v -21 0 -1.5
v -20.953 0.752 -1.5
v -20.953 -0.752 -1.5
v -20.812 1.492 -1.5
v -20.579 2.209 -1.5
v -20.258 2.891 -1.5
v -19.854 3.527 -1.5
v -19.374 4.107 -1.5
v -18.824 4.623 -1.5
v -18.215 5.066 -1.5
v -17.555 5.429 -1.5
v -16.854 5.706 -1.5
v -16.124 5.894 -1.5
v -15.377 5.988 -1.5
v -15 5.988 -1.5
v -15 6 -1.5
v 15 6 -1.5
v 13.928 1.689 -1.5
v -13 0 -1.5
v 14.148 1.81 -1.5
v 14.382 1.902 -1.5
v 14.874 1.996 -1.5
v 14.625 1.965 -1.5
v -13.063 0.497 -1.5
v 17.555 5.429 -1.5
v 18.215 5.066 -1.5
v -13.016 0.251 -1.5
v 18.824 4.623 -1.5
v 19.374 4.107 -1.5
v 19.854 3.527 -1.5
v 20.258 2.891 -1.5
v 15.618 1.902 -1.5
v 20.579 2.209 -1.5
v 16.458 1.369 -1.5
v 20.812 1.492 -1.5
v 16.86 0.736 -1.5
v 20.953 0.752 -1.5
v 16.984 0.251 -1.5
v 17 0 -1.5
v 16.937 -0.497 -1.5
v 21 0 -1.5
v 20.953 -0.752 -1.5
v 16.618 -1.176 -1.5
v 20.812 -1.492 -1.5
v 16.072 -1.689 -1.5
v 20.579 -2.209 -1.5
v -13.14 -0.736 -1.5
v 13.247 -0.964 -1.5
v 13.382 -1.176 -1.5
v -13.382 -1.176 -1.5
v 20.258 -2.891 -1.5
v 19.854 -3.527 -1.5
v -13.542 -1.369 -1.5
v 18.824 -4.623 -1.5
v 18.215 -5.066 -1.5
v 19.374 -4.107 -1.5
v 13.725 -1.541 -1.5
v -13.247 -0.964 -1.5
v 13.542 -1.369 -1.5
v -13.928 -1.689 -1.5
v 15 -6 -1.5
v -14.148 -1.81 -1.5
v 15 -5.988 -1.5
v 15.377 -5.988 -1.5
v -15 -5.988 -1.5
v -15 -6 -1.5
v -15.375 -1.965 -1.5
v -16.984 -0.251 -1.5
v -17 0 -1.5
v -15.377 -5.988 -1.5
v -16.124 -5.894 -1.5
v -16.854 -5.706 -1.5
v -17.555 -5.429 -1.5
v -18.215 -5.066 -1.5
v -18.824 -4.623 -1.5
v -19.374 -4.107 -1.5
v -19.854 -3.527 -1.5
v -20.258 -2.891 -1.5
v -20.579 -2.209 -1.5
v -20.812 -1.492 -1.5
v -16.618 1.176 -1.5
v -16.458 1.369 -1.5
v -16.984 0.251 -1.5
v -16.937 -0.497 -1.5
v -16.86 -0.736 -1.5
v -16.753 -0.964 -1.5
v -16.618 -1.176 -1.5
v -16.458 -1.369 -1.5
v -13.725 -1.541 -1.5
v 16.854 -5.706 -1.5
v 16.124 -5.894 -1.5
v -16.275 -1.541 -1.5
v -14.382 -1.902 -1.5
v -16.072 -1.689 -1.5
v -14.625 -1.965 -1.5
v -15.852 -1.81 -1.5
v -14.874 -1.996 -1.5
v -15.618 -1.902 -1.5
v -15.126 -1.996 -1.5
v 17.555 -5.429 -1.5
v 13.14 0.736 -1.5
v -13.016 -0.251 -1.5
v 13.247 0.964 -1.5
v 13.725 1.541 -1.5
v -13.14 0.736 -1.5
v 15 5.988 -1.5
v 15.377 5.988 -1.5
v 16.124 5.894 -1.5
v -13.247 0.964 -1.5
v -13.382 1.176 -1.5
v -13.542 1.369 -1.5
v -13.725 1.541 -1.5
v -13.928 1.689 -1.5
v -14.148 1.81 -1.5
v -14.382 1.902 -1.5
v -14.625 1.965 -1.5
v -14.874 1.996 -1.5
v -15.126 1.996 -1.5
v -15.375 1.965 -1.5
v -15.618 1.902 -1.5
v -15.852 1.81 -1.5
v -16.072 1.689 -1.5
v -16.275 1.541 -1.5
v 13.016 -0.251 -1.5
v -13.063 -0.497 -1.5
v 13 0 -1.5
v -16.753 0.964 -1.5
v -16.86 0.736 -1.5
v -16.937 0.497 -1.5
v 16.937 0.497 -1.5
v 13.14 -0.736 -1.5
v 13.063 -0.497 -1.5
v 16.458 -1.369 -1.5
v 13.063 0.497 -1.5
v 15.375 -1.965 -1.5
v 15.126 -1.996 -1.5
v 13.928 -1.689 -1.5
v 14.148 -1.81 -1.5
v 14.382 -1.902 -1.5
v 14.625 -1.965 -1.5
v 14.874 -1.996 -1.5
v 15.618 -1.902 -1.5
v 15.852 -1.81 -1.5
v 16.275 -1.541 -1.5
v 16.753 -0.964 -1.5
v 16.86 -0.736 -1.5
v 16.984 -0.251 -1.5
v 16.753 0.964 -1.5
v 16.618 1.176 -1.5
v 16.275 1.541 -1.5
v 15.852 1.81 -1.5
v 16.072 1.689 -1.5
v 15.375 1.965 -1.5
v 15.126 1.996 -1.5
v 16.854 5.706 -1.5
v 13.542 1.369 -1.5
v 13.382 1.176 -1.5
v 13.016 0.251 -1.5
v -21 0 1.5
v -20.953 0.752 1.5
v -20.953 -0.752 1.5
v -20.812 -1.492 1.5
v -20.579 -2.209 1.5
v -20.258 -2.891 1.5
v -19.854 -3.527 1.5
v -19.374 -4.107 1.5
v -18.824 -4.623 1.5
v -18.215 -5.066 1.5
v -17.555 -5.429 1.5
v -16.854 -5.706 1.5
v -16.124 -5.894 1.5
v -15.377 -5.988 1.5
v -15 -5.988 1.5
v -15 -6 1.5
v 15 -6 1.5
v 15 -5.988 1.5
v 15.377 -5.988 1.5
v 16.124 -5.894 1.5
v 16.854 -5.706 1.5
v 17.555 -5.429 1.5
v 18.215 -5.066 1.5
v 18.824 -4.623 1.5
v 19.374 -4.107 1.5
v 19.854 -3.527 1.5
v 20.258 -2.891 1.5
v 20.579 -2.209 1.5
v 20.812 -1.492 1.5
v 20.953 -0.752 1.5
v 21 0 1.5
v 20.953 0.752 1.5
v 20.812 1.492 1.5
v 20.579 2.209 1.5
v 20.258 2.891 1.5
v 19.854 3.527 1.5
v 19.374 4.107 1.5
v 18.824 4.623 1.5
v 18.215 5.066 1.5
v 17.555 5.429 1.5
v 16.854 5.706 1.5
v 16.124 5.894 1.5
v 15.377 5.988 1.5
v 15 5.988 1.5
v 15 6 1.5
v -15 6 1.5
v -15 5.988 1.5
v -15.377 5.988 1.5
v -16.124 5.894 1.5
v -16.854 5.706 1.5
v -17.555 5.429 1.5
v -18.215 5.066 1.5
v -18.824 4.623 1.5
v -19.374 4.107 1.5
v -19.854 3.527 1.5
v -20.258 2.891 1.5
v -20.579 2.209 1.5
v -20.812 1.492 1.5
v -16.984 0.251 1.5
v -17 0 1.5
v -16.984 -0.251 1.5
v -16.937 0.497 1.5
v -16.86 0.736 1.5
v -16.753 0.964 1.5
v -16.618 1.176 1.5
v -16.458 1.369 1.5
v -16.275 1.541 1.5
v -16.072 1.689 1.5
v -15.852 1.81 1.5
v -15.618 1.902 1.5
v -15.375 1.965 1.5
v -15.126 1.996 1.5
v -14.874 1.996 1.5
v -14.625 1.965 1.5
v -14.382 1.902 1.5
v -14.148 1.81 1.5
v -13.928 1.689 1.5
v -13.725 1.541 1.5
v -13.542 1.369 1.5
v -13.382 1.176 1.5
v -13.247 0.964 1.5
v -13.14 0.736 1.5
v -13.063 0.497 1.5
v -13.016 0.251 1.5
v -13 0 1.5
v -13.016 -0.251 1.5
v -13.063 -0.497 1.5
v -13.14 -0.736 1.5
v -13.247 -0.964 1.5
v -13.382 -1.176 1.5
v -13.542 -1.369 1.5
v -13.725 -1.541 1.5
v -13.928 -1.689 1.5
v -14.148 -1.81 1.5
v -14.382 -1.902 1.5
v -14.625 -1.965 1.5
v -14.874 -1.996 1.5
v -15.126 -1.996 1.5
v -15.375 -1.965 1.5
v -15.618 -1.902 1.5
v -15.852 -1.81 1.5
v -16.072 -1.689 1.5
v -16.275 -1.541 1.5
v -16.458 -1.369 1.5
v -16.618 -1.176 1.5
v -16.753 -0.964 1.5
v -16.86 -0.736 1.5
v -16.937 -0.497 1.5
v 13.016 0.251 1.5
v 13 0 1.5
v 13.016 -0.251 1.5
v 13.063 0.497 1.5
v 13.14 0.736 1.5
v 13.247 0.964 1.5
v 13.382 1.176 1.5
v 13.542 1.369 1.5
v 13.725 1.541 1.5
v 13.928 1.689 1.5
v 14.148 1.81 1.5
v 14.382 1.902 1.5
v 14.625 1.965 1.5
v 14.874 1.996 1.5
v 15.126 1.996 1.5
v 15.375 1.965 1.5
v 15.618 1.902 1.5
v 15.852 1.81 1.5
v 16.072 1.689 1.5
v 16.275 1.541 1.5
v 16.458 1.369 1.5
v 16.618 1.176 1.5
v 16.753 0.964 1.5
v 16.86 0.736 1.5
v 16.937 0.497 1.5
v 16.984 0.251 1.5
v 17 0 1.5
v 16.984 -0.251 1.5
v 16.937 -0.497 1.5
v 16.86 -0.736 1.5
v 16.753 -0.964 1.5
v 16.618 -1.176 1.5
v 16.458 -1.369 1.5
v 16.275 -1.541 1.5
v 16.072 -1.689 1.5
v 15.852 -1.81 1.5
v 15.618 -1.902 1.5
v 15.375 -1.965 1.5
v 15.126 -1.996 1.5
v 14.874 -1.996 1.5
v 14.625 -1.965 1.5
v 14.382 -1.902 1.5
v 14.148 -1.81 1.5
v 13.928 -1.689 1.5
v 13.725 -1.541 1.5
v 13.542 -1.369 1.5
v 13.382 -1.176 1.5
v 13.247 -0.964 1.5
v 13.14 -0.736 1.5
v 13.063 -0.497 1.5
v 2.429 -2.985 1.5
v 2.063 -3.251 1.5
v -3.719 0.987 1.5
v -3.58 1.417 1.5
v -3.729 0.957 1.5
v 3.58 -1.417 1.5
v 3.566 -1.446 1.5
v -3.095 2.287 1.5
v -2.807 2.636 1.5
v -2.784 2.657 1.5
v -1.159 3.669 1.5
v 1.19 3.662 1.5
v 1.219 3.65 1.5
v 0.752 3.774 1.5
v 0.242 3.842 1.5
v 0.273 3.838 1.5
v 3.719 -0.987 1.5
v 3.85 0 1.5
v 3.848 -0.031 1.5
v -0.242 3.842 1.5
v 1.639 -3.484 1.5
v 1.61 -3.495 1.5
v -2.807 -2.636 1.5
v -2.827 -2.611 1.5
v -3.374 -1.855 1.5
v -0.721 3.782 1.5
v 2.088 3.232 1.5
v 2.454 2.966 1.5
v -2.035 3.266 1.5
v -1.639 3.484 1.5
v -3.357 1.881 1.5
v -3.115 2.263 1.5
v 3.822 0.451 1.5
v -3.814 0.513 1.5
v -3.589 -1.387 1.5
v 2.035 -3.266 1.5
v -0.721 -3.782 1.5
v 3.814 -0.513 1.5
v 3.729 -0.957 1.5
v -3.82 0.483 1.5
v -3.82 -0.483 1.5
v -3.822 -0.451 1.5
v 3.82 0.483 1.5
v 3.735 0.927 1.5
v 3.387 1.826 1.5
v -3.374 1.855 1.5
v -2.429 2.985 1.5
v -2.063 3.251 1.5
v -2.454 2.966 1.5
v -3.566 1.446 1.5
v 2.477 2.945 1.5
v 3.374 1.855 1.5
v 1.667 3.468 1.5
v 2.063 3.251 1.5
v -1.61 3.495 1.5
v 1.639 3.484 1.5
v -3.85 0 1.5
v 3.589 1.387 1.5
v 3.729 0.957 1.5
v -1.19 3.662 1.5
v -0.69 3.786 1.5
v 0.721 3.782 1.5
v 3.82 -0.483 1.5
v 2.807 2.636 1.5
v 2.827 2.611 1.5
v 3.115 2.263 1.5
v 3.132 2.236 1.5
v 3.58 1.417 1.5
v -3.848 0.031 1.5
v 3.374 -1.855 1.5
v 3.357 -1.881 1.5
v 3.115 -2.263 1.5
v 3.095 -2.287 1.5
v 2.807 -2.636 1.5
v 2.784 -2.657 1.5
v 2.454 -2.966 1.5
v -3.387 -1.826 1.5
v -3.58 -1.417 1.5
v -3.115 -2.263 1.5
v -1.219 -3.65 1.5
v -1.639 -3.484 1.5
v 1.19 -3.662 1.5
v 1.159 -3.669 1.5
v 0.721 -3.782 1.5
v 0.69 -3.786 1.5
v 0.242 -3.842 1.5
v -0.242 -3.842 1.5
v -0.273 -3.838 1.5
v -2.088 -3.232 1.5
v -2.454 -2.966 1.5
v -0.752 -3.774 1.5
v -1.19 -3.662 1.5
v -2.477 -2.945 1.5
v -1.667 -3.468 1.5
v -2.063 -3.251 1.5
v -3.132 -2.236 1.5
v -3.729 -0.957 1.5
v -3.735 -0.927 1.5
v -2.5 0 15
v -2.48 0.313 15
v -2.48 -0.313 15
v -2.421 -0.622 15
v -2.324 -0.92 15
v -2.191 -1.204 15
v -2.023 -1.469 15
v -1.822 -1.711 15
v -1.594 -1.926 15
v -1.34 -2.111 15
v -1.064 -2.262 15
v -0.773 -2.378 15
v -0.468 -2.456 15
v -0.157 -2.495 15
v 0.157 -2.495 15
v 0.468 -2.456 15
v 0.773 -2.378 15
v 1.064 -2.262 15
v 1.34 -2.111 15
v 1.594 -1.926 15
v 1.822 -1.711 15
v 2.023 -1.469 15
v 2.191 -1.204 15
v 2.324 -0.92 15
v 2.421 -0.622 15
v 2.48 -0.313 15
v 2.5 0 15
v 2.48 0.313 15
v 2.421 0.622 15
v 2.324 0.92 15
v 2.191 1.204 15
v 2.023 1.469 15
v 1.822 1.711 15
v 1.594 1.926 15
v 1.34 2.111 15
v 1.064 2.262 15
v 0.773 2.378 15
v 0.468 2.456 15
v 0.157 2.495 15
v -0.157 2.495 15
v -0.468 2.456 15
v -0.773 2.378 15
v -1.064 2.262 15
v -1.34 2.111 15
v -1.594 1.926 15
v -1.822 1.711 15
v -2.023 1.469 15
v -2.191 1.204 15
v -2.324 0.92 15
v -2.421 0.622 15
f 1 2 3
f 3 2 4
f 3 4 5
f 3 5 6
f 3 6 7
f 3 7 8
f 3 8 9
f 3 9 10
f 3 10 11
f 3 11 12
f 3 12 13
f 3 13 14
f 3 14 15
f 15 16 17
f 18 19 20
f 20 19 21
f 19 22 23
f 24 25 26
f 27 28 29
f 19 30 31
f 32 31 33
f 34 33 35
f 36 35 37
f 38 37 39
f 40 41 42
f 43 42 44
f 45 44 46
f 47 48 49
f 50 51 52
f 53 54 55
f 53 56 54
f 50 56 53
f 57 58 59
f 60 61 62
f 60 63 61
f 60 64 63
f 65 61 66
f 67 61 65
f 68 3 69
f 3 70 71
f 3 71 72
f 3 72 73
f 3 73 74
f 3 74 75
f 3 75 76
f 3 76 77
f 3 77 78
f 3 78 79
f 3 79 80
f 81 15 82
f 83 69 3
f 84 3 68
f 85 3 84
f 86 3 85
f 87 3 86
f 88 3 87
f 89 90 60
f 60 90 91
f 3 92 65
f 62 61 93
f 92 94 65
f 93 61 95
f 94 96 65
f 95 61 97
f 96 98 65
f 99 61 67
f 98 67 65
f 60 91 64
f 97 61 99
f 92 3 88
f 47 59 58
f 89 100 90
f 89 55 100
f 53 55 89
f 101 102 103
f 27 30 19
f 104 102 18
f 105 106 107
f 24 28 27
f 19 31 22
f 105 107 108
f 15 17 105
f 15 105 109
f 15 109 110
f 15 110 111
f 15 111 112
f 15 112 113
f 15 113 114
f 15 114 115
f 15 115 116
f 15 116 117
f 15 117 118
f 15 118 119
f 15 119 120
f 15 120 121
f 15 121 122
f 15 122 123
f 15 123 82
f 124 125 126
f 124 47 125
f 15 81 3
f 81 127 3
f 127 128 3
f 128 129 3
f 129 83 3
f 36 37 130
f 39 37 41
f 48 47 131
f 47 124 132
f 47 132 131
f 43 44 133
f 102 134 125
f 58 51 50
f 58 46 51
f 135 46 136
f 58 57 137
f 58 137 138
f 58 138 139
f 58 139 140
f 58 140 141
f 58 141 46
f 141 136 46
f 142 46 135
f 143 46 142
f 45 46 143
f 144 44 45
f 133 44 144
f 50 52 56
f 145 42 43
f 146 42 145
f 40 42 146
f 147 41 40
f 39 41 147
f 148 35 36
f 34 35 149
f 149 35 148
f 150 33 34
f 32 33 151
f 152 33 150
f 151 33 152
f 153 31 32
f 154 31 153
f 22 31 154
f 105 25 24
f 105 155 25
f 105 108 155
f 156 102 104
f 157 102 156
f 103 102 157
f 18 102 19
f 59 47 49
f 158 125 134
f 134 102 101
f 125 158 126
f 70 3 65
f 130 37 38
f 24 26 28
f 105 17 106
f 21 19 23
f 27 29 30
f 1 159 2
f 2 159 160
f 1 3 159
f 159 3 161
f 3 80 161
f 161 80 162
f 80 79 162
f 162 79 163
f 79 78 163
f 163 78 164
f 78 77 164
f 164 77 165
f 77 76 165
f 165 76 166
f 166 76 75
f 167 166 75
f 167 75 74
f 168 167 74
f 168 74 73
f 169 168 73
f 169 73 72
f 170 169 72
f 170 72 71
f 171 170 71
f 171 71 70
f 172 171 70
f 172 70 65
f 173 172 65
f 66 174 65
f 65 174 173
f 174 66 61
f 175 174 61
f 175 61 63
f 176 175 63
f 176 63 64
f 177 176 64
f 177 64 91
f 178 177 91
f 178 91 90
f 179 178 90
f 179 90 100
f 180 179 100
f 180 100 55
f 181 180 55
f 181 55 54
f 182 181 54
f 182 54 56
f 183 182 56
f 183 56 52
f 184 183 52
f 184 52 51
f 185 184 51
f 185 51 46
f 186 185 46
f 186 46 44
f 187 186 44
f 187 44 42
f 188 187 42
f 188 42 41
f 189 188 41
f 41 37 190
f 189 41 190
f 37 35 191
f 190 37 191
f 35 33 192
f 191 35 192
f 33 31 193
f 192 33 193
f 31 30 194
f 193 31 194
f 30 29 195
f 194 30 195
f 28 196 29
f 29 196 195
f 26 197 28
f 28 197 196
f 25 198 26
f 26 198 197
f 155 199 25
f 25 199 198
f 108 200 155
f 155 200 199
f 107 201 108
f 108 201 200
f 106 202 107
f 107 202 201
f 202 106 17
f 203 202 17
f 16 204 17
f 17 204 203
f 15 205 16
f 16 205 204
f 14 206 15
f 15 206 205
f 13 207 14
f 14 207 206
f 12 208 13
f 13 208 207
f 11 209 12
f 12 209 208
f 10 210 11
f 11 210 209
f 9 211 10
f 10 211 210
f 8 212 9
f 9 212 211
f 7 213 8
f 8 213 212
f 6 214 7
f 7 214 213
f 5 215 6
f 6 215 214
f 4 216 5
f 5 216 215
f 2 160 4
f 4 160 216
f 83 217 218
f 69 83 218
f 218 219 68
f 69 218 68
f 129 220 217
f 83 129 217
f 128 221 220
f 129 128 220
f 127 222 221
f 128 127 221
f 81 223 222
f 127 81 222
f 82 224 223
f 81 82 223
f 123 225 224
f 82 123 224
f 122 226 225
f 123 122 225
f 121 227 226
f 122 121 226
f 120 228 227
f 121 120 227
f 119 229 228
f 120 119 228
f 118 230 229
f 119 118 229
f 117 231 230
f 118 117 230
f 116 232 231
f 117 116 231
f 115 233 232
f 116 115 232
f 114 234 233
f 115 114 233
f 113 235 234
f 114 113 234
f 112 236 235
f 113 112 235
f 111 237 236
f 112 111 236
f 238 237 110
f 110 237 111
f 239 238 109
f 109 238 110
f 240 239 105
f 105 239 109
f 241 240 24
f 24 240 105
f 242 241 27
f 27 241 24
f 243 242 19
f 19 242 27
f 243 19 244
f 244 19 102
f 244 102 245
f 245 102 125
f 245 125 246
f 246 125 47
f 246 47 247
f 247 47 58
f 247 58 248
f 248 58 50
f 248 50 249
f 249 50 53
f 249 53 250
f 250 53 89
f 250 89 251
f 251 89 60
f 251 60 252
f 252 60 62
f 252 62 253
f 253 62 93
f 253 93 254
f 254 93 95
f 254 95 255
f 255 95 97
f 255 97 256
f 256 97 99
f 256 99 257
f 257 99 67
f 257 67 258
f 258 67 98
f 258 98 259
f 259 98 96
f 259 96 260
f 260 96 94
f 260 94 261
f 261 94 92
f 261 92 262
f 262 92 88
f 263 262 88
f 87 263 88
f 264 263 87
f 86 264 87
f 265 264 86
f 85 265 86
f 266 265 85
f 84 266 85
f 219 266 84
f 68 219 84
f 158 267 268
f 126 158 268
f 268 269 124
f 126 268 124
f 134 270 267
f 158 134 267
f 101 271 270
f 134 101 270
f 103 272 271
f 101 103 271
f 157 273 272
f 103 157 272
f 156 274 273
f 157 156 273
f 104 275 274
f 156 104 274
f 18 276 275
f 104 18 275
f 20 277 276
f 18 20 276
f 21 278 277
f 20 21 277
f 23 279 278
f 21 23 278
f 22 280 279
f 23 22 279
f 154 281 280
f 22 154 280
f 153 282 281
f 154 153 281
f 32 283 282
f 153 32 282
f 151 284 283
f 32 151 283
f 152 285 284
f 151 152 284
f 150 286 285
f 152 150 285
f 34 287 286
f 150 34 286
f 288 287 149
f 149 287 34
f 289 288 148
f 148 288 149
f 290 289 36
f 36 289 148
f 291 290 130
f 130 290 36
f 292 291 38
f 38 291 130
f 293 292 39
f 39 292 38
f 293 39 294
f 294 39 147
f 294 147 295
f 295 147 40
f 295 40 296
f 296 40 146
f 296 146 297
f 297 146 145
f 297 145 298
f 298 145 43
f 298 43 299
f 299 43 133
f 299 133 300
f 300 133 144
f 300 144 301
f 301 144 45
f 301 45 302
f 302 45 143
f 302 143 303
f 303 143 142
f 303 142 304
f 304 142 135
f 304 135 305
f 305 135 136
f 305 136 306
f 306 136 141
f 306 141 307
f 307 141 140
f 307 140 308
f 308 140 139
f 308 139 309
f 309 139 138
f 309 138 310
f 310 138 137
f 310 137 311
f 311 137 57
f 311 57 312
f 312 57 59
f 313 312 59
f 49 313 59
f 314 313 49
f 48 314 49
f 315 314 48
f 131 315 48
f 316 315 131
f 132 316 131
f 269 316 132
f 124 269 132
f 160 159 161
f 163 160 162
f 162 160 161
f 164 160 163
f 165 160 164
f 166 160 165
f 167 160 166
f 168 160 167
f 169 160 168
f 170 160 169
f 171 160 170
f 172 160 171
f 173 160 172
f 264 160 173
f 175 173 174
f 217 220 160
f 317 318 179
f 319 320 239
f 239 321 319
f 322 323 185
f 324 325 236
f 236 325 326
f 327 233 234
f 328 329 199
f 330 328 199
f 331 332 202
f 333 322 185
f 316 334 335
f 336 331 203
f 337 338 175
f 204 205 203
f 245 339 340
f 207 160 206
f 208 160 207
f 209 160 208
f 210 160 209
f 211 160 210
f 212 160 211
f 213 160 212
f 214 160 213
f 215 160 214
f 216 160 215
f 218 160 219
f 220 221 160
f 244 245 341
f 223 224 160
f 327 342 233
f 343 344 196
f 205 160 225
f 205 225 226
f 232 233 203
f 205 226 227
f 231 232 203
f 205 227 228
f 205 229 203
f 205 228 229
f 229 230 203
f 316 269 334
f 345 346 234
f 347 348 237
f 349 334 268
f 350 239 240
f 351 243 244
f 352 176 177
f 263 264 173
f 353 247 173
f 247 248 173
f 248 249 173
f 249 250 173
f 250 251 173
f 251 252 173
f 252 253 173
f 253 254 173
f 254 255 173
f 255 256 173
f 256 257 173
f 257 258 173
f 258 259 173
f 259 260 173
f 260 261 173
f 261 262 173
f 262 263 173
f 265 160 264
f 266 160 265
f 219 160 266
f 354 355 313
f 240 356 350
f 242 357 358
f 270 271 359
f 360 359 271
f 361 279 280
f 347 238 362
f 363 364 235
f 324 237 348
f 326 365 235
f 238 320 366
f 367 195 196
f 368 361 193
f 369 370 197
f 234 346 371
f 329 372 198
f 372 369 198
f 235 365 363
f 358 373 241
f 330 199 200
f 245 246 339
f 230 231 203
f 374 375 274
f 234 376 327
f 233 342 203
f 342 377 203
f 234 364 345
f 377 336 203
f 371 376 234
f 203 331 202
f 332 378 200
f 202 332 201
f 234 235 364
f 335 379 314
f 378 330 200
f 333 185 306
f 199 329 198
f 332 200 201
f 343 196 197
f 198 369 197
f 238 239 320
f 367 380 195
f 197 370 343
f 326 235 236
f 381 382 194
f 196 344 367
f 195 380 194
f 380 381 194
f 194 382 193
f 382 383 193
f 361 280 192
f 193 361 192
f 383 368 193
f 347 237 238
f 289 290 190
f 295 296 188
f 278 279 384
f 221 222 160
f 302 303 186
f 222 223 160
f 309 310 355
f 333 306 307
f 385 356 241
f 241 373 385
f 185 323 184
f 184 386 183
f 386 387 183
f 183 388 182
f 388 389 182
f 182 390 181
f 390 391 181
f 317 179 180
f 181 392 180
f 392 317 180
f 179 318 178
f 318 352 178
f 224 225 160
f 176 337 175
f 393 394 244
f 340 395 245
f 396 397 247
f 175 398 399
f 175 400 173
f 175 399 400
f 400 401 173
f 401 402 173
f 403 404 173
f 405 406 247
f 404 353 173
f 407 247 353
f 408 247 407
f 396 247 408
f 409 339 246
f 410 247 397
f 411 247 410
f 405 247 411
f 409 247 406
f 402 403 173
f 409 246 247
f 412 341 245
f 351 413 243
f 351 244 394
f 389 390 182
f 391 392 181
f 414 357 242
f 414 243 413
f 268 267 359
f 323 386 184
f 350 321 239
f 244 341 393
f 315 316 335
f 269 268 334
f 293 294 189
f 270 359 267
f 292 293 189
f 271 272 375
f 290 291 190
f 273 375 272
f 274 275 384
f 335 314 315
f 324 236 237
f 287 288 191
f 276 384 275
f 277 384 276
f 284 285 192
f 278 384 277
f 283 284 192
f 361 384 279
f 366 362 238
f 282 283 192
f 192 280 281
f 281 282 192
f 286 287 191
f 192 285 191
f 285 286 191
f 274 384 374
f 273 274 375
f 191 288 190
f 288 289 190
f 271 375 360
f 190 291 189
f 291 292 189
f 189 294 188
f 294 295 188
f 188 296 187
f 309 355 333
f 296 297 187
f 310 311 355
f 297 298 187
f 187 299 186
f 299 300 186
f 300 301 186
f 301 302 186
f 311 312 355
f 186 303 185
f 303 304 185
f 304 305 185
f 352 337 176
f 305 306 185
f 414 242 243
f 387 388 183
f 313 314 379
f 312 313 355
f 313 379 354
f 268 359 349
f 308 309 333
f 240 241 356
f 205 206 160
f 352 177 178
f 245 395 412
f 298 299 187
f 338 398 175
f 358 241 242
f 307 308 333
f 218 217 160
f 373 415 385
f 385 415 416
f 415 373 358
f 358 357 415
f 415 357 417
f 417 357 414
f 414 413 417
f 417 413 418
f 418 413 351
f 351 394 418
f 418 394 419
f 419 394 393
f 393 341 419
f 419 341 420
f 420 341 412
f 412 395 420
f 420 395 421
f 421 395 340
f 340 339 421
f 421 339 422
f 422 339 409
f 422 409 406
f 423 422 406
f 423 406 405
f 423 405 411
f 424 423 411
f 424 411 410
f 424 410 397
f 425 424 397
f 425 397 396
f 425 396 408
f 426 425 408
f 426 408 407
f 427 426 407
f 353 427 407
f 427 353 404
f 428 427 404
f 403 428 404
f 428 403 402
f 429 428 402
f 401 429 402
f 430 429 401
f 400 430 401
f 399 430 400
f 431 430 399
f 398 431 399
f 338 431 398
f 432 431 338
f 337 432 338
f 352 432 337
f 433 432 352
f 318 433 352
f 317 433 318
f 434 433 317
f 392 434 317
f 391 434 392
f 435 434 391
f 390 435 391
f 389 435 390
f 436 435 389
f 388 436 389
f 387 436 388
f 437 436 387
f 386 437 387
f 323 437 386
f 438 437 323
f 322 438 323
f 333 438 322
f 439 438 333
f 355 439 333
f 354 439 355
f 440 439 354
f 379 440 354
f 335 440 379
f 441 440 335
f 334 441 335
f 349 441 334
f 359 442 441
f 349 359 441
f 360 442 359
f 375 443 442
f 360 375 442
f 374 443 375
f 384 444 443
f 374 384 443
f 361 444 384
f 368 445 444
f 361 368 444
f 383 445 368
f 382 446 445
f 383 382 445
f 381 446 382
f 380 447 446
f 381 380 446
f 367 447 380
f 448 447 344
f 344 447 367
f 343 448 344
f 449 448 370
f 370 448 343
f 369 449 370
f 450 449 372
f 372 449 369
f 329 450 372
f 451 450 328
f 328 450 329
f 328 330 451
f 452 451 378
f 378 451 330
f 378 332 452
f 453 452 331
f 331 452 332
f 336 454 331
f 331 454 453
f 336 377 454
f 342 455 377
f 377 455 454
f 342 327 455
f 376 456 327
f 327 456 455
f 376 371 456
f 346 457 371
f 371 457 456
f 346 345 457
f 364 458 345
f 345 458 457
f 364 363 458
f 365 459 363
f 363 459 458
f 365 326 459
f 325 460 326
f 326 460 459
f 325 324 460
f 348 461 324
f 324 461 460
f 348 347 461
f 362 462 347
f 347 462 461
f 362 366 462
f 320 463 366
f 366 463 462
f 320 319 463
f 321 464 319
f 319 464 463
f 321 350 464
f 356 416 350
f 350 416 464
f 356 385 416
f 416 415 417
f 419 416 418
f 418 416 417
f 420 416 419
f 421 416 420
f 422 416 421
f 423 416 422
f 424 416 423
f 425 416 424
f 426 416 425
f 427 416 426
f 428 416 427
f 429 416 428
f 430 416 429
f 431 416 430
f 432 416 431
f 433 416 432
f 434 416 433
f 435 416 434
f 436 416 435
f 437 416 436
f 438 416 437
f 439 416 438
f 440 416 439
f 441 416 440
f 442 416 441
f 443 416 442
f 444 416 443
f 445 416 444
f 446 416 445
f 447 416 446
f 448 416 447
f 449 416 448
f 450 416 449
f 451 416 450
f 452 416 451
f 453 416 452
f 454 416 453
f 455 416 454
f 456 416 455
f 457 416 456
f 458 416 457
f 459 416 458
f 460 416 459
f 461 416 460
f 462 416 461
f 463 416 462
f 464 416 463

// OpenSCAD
$fn = 50;
difference() {
union() {
for(i = [1,-1])
translate([15*i,0,0]) cylinder(r = 6, h = 3, center = true);
cube([30, 12, 3], center = true);
cylinder(r1 = 8/2, r2 = 5/2, h =15);
}
union() {
for(i = [1,-1])
translate([15*i,0,0]) cylinder(r = 2, h = 5, center = true);

}
}
